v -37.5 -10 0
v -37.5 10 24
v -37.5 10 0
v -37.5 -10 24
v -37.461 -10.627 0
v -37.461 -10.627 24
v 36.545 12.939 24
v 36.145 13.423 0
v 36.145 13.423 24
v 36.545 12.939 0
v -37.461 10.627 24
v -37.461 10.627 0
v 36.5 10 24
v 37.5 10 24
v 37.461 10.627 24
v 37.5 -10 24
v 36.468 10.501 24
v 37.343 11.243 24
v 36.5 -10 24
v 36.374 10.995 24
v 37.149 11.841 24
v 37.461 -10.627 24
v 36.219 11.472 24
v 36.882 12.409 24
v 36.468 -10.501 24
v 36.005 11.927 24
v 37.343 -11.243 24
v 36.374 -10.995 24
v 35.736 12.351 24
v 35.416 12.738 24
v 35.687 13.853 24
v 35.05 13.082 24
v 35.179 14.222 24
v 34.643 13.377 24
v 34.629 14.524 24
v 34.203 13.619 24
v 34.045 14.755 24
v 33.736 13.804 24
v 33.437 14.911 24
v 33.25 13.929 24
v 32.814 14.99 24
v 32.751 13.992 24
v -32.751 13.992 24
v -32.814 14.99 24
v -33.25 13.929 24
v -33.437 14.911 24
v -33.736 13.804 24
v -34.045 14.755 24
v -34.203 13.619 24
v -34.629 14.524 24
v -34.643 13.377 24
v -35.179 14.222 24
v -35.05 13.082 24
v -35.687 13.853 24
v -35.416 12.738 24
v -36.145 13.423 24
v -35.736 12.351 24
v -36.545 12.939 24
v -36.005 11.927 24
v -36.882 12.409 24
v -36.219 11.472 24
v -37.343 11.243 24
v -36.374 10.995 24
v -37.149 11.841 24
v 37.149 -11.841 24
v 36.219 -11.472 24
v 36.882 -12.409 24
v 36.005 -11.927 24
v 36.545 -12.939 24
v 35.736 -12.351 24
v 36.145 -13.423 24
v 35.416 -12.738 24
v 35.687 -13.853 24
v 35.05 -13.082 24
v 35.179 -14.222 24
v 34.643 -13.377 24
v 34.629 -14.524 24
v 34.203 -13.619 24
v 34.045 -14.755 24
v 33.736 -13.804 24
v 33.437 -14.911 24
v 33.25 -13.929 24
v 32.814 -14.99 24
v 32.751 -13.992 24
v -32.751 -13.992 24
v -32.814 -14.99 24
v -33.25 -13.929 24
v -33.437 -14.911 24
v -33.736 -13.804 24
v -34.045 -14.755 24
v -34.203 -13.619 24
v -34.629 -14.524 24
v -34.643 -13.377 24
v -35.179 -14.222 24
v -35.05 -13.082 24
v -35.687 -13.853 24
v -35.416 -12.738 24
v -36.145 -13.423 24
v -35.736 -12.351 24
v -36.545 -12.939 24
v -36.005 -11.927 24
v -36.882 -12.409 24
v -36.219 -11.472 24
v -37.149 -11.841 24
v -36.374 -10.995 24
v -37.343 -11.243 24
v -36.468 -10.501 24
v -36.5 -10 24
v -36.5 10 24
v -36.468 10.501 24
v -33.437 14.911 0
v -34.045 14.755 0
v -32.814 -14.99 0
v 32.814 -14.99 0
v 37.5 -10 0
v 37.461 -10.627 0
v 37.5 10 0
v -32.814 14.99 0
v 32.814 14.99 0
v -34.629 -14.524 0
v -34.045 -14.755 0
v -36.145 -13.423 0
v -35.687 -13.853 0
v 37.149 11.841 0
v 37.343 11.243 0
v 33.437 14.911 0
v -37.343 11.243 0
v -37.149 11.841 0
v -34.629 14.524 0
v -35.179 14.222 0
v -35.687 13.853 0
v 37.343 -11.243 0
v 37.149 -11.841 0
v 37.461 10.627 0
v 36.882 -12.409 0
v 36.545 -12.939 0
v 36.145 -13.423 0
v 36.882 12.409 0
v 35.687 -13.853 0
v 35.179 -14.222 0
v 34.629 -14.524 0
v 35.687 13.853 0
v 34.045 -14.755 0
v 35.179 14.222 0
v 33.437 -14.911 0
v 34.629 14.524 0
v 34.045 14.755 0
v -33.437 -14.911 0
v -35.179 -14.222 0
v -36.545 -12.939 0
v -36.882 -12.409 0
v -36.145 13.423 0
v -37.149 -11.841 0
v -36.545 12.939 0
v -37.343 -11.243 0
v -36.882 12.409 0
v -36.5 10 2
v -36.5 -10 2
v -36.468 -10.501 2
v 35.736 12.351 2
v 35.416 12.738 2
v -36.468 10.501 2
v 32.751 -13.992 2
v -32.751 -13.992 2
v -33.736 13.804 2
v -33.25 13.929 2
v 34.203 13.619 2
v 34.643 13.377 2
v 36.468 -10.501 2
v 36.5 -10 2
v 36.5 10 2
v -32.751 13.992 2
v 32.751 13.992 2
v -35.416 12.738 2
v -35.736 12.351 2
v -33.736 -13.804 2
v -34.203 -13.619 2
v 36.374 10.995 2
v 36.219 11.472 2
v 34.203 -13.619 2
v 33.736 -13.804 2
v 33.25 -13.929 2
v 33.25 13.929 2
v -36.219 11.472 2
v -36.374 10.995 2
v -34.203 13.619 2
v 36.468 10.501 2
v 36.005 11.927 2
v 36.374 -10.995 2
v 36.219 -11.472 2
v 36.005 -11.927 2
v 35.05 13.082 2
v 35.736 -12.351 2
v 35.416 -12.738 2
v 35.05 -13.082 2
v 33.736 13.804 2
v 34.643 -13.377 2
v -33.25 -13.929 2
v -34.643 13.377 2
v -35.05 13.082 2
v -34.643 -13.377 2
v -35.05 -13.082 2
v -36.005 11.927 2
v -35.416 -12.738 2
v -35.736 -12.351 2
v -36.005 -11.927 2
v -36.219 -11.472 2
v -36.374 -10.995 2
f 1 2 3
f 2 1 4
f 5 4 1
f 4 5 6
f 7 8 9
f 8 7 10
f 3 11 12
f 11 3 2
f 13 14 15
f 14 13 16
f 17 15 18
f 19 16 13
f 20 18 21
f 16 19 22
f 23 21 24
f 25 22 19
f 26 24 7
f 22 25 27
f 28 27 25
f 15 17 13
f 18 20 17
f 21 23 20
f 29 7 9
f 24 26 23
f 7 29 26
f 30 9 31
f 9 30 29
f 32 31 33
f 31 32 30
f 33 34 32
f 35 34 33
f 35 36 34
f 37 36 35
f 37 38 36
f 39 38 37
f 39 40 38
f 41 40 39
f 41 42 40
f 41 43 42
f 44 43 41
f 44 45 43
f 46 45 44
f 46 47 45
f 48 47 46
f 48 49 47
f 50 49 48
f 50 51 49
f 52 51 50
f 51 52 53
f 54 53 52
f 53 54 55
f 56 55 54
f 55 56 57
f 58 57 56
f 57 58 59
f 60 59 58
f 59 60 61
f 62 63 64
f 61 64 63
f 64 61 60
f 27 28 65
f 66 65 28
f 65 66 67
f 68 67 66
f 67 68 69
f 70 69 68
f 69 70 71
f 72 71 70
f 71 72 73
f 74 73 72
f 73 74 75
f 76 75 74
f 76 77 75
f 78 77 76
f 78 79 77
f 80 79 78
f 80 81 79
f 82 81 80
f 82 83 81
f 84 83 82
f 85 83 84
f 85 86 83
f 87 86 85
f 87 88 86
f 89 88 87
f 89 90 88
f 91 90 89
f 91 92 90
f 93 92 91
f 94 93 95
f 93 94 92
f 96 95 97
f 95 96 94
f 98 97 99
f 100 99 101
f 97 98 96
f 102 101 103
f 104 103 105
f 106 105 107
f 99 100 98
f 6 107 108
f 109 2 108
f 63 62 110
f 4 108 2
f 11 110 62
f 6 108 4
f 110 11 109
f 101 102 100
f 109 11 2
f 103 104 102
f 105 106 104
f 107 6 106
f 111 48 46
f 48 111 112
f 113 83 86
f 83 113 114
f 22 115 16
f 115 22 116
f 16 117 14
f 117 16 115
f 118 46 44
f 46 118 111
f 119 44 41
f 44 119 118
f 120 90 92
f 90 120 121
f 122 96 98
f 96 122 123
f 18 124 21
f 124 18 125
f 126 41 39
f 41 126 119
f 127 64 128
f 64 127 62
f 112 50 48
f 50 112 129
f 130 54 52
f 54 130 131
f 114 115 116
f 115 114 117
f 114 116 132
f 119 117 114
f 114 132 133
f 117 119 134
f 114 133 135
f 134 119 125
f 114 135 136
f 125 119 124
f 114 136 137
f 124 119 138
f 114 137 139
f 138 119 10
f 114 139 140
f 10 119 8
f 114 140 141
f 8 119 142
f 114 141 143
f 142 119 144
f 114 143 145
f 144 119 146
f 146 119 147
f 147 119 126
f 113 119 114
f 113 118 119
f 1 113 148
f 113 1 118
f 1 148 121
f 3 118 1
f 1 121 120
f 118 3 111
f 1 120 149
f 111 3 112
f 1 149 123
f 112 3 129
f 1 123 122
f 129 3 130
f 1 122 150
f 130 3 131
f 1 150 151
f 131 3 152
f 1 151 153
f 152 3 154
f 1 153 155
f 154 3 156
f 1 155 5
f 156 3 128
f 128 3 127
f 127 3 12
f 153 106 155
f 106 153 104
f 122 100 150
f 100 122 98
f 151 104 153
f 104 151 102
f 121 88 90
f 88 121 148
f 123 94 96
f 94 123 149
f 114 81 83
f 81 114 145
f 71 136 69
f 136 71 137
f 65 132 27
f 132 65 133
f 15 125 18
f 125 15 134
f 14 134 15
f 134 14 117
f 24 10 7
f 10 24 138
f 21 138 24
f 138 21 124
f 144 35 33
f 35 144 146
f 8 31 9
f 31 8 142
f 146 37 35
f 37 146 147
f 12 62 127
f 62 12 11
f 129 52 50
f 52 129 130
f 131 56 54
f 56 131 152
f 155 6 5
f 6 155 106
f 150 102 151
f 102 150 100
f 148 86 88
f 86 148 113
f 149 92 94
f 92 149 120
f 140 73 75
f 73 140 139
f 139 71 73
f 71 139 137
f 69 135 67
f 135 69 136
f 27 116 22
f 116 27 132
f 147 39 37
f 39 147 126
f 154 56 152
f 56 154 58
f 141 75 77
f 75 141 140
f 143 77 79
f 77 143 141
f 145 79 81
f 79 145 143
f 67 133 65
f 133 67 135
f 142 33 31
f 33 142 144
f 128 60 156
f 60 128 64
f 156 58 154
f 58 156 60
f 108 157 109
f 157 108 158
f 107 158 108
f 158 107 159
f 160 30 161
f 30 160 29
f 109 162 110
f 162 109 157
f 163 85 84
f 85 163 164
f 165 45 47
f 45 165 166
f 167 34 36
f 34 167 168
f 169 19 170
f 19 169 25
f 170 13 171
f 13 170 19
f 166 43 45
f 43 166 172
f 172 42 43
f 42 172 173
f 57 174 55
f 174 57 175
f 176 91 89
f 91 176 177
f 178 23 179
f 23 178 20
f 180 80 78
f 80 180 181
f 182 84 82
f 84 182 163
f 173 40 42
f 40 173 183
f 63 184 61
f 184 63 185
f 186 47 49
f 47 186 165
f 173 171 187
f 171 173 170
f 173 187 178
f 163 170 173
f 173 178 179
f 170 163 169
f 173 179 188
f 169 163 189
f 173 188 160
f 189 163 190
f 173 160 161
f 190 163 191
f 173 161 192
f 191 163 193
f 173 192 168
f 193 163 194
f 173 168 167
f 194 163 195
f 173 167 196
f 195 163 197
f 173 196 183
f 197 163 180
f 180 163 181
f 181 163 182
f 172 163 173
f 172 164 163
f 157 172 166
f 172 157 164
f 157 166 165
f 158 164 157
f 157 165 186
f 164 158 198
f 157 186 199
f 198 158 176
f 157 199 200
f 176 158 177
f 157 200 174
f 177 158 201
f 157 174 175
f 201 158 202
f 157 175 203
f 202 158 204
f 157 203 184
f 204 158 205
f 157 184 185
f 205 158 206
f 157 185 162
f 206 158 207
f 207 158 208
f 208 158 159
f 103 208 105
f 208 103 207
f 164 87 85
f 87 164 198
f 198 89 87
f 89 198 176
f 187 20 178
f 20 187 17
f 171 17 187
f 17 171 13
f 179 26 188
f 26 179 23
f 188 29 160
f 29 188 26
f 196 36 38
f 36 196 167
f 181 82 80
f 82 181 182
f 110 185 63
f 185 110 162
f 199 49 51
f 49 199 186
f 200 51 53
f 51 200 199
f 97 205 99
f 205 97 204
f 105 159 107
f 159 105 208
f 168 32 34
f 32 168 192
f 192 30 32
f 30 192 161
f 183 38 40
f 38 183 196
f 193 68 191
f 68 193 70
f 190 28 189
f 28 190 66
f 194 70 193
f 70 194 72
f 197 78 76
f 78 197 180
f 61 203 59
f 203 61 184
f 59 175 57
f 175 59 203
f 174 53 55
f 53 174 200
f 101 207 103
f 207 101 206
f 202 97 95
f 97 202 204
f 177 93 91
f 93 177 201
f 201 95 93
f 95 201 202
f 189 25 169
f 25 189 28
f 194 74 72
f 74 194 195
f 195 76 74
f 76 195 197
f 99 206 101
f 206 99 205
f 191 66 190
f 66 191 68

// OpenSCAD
$fn = 50;


difference() {
	union() {
		hull() {
			translate(v = [-32.5000000000, 10.0000000000, 0]) {
				cylinder(h = 24, r = 5);
			}
			translate(v = [32.5000000000, 10.0000000000, 0]) {
				cylinder(h = 24, r = 5);
			}
			translate(v = [-32.5000000000, -10.0000000000, 0]) {
				cylinder(h = 24, r = 5);
			}
			translate(v = [32.5000000000, -10.0000000000, 0]) {
				cylinder(h = 24, r = 5);
			}
		}
	}
	union() {
		translate(v = [0, 0, 2]) {
			hull() {
				translate(v = [-32.5000000000, 10.0000000000, 0]) {
					cylinder(h = 22, r = 4);
				}
				translate(v = [32.5000000000, 10.0000000000, 0]) {
					cylinder(h = 22, r = 4);
				}
				translate(v = [-32.5000000000, -10.0000000000, 0]) {
					cylinder(h = 22, r = 4);
				}
				translate(v = [32.5000000000, -10.0000000000, 0]) {
					cylinder(h = 22, r = 4);
				}
			}
		}
	}
}
